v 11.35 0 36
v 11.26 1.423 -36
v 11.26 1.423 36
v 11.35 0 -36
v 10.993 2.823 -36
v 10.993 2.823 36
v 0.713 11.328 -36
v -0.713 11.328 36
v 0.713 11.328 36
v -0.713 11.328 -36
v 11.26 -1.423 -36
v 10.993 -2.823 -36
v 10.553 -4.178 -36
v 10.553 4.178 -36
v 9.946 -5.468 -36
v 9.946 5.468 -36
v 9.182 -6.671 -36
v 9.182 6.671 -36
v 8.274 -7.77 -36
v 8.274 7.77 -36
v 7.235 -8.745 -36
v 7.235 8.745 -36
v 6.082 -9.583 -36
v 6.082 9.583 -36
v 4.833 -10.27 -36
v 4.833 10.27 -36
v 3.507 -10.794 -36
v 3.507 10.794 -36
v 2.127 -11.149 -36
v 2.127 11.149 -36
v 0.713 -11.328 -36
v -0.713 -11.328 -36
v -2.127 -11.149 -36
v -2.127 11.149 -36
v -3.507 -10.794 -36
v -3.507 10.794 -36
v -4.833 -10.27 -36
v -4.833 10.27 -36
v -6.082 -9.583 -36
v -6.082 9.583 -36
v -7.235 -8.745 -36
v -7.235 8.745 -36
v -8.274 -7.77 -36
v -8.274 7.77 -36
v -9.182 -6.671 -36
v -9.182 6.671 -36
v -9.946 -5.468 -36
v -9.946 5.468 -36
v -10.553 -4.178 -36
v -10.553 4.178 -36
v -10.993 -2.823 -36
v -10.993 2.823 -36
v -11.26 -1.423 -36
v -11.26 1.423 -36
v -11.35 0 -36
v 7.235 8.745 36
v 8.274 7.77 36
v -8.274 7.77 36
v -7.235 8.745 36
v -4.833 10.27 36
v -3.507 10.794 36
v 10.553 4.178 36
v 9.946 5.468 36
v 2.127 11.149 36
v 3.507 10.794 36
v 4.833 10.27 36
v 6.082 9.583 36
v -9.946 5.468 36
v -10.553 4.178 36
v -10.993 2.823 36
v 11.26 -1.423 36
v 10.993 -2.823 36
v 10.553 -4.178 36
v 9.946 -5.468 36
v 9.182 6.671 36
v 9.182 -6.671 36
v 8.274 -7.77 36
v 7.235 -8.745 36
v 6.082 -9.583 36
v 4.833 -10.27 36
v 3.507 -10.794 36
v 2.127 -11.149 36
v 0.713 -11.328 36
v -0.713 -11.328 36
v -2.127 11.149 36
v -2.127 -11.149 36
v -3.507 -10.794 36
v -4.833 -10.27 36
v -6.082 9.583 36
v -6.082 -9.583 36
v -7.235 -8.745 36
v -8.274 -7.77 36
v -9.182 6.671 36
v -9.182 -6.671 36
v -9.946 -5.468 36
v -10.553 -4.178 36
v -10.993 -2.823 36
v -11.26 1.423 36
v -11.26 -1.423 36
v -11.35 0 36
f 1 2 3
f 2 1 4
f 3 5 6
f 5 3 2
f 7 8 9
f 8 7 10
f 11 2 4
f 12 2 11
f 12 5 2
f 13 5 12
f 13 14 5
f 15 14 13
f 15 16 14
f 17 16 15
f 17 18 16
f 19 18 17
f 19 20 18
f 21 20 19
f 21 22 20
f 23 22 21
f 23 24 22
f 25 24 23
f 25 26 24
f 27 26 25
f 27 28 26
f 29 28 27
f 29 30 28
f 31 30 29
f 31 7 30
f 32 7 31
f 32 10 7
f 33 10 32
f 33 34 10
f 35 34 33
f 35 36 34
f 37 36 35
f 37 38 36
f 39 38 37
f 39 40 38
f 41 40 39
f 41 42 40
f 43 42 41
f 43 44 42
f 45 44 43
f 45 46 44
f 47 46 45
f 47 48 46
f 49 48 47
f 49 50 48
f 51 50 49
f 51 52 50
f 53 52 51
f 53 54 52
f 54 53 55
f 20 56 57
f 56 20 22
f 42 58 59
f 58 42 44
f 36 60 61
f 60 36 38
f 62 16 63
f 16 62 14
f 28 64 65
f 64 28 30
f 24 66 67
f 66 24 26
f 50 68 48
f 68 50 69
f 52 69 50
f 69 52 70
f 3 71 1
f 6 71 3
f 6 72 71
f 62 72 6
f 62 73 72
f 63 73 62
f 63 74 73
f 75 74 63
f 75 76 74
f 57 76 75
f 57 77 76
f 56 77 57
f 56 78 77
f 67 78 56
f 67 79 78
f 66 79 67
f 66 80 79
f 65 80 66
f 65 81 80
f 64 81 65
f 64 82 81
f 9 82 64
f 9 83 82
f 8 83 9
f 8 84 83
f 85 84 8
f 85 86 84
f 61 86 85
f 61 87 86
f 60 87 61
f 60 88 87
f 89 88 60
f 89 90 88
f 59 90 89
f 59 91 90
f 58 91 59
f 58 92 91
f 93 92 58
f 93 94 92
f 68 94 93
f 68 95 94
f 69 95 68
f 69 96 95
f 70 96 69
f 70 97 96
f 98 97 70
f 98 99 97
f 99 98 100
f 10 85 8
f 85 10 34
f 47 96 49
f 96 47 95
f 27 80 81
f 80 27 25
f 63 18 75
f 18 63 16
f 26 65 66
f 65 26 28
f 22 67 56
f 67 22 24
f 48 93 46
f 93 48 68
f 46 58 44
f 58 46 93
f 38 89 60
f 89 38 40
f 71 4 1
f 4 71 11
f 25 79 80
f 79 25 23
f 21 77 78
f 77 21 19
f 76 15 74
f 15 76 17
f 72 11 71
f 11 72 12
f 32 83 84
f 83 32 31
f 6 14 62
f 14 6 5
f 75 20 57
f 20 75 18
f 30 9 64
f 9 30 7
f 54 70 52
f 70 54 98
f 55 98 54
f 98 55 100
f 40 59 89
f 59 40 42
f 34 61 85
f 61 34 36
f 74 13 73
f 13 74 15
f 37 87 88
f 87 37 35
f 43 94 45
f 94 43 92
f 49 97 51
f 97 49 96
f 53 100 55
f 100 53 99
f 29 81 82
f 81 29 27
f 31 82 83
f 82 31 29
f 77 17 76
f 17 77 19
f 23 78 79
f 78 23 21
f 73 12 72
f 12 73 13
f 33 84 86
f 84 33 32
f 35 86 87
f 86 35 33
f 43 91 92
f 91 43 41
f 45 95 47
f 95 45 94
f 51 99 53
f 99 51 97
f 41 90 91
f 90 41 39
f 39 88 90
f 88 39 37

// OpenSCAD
$fn = 50;


difference() {
	union() {
		translate(v = [0, 0, -36.0000000000]) {
			cylinder(h = 72, r = 11.3500000000);
		}
	}
	union() {
		translate(v = [0, 0, -100.0000000000]) {
			cylinder(h = 200, r = 0);
		}
	}
}
